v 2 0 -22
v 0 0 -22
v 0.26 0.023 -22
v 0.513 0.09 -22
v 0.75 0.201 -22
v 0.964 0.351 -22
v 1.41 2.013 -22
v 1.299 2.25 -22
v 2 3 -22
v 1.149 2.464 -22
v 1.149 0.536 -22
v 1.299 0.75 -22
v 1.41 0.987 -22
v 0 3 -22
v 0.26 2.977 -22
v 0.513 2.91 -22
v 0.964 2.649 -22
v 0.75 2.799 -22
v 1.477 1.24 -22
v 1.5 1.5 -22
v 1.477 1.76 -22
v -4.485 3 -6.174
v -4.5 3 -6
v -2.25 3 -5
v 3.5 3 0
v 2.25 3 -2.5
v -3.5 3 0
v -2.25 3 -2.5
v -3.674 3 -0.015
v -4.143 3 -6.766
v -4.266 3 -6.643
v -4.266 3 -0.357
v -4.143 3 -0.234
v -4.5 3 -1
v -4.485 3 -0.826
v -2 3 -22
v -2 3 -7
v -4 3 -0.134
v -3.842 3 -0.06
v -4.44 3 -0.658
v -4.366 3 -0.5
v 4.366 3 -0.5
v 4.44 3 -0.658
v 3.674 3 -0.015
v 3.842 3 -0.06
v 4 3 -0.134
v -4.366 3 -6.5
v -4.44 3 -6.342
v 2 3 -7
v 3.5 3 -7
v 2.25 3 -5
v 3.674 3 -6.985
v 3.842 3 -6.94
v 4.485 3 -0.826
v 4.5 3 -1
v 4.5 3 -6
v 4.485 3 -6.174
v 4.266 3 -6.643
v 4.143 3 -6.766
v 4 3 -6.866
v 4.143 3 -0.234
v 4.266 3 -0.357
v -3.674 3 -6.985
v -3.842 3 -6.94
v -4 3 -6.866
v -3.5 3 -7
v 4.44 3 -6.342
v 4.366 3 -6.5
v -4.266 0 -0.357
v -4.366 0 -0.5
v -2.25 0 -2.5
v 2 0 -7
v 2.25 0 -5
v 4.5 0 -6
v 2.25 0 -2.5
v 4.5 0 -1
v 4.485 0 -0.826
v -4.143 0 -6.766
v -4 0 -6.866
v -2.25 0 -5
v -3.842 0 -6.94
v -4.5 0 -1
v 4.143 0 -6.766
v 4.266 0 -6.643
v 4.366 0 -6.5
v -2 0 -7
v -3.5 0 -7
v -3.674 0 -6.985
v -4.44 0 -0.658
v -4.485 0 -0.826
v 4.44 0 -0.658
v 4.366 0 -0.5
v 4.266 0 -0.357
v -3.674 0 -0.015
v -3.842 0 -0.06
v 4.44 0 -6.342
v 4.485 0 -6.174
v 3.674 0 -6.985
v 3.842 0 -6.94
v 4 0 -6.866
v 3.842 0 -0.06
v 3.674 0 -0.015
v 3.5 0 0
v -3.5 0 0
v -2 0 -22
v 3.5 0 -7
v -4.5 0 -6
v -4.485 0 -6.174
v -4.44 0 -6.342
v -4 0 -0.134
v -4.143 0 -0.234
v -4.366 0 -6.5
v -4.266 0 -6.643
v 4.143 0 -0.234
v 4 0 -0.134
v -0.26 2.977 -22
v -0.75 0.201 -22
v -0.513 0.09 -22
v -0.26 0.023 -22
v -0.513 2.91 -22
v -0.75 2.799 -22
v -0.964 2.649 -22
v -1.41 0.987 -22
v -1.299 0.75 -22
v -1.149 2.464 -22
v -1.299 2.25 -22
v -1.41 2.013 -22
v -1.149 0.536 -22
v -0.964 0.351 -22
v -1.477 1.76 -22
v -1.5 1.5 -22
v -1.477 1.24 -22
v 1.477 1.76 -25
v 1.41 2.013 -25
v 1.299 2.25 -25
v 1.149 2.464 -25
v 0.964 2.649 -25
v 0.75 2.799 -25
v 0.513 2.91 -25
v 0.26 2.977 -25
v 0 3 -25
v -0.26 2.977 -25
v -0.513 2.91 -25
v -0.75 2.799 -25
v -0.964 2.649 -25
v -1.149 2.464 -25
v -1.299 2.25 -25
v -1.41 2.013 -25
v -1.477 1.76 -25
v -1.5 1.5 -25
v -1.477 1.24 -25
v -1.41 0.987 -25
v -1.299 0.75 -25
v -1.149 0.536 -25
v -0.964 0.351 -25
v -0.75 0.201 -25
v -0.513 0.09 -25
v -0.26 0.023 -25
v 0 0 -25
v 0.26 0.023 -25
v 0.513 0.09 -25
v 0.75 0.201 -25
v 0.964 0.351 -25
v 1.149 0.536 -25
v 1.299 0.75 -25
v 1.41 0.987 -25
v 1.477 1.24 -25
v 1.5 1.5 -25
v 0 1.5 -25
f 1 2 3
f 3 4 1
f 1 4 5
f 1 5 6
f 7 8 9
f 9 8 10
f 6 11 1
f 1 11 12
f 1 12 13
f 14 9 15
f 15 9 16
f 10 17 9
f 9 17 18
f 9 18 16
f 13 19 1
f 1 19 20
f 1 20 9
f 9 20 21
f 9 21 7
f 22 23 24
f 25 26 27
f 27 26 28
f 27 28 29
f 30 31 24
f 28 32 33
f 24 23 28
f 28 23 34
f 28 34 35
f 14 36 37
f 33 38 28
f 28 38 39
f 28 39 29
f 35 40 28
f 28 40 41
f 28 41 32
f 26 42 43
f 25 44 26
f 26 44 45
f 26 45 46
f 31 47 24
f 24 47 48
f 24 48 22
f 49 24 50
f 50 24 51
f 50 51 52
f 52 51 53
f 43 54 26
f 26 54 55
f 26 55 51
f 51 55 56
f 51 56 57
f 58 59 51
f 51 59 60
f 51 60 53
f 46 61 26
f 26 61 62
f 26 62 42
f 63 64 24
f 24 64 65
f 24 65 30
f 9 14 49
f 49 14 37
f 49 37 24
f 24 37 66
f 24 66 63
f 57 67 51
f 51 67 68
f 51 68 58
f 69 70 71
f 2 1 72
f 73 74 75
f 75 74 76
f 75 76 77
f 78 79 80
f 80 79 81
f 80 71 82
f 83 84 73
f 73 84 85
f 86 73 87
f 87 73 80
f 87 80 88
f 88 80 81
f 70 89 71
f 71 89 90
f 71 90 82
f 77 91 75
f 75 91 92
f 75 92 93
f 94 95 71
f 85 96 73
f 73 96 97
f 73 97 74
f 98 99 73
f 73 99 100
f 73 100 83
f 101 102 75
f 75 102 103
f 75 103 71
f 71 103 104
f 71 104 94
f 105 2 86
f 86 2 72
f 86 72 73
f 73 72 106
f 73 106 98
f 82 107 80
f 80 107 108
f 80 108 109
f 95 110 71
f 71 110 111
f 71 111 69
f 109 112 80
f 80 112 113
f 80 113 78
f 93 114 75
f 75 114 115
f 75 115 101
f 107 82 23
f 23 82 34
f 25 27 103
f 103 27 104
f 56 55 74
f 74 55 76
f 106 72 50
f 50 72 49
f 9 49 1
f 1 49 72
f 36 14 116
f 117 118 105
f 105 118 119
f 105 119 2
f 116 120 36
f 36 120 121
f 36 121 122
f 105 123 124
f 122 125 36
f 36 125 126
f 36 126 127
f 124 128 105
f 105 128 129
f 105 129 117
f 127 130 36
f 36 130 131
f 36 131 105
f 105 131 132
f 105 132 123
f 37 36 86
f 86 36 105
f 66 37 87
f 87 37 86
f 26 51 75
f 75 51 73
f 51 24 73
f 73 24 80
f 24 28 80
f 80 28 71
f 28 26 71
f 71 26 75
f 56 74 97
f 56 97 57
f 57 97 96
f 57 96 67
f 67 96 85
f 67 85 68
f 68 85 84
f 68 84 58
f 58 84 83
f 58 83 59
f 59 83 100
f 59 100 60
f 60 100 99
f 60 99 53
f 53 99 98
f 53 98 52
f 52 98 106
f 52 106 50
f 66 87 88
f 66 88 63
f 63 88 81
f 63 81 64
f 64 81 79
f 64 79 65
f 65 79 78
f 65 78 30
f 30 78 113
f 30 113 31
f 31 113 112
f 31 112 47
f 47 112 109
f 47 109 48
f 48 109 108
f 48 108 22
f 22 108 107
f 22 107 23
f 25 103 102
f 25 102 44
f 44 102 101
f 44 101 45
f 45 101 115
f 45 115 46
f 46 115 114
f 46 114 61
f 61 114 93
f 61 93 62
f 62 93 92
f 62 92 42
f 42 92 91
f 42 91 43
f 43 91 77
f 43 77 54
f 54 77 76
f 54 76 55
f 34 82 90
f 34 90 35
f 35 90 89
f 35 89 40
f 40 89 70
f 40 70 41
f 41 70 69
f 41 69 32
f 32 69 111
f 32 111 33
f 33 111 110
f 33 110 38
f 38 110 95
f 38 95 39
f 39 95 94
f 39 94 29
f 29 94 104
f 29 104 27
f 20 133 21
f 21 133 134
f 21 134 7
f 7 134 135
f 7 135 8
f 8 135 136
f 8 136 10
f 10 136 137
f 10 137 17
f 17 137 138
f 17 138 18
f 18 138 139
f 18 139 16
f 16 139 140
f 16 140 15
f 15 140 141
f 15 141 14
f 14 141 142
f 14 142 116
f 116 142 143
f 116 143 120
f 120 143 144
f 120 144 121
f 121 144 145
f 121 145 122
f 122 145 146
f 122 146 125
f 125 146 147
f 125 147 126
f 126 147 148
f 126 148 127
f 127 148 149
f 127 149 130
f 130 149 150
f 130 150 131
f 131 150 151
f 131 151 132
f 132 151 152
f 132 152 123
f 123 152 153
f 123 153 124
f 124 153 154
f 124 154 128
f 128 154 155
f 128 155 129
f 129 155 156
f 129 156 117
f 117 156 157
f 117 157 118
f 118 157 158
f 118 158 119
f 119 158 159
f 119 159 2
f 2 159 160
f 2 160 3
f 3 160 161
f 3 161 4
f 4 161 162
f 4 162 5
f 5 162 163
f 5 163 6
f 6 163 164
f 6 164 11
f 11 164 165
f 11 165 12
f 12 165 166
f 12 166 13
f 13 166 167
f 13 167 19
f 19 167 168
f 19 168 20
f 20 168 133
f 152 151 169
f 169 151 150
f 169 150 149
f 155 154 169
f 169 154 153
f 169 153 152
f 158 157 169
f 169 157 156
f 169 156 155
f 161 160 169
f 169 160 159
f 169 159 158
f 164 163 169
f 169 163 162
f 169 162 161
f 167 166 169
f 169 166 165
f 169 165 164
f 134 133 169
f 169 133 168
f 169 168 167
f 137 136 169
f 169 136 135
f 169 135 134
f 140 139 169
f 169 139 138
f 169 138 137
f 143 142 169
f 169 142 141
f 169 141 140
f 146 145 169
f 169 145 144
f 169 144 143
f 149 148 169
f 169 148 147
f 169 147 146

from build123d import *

# Parameters (mm, degrees)
CROQUIS1_W              = 4.5
CROQUIS1_H              = 2.5
SALIENTE_EXTRUIR1_DEPTH = 3
REDONDEO1_R             = 1
CROQUIS2_R              = 1.5
SALIENTE_EXTRUIR2_DEPTH = 3


with BuildPart() as part:
    # Croquis1 → Saliente-Extruir1 (new body)
    with BuildSketch(Plane(origin=(0, 0, 0), x_dir=(1, 0, 0), z_dir=(0, 1, 0))):
        Polygon((4.5, 0), (-4.5, 0), (-4.5, 7), (-2, 7), (-2, 22), (2, 22), (2, 7), (4.5, 7), align=None)
        with Locations((0, 3.75)):
            Rectangle(CROQUIS1_W, CROQUIS1_H, mode=Mode.SUBTRACT)
    extrude(amount=SALIENTE_EXTRUIR1_DEPTH)

    # Redondeo1
    redondeo1_edges = [part.edges().sort_by_distance(p)[0] for p in [
        (-4.5, 1.5, -7),
        (4.5, 1.5, -7),
        (4.5, 1.5, 0),
        (-4.5, 1.5, 0),
    ]]
    fillet(redondeo1_edges, radius=REDONDEO1_R)

    # Croquis2 → Saliente-Extruir2 (add)
    with BuildSketch(Plane(origin=(0, 0, -22), x_dir=(-1, 0, 0), z_dir=(0, 0, -1))):
        with Locations(Location((0, 1.5, 0), (0, 0, 270))):
            Circle(CROQUIS2_R)
    extrude(amount=SALIENTE_EXTRUIR2_DEPTH)


solid = part.part
